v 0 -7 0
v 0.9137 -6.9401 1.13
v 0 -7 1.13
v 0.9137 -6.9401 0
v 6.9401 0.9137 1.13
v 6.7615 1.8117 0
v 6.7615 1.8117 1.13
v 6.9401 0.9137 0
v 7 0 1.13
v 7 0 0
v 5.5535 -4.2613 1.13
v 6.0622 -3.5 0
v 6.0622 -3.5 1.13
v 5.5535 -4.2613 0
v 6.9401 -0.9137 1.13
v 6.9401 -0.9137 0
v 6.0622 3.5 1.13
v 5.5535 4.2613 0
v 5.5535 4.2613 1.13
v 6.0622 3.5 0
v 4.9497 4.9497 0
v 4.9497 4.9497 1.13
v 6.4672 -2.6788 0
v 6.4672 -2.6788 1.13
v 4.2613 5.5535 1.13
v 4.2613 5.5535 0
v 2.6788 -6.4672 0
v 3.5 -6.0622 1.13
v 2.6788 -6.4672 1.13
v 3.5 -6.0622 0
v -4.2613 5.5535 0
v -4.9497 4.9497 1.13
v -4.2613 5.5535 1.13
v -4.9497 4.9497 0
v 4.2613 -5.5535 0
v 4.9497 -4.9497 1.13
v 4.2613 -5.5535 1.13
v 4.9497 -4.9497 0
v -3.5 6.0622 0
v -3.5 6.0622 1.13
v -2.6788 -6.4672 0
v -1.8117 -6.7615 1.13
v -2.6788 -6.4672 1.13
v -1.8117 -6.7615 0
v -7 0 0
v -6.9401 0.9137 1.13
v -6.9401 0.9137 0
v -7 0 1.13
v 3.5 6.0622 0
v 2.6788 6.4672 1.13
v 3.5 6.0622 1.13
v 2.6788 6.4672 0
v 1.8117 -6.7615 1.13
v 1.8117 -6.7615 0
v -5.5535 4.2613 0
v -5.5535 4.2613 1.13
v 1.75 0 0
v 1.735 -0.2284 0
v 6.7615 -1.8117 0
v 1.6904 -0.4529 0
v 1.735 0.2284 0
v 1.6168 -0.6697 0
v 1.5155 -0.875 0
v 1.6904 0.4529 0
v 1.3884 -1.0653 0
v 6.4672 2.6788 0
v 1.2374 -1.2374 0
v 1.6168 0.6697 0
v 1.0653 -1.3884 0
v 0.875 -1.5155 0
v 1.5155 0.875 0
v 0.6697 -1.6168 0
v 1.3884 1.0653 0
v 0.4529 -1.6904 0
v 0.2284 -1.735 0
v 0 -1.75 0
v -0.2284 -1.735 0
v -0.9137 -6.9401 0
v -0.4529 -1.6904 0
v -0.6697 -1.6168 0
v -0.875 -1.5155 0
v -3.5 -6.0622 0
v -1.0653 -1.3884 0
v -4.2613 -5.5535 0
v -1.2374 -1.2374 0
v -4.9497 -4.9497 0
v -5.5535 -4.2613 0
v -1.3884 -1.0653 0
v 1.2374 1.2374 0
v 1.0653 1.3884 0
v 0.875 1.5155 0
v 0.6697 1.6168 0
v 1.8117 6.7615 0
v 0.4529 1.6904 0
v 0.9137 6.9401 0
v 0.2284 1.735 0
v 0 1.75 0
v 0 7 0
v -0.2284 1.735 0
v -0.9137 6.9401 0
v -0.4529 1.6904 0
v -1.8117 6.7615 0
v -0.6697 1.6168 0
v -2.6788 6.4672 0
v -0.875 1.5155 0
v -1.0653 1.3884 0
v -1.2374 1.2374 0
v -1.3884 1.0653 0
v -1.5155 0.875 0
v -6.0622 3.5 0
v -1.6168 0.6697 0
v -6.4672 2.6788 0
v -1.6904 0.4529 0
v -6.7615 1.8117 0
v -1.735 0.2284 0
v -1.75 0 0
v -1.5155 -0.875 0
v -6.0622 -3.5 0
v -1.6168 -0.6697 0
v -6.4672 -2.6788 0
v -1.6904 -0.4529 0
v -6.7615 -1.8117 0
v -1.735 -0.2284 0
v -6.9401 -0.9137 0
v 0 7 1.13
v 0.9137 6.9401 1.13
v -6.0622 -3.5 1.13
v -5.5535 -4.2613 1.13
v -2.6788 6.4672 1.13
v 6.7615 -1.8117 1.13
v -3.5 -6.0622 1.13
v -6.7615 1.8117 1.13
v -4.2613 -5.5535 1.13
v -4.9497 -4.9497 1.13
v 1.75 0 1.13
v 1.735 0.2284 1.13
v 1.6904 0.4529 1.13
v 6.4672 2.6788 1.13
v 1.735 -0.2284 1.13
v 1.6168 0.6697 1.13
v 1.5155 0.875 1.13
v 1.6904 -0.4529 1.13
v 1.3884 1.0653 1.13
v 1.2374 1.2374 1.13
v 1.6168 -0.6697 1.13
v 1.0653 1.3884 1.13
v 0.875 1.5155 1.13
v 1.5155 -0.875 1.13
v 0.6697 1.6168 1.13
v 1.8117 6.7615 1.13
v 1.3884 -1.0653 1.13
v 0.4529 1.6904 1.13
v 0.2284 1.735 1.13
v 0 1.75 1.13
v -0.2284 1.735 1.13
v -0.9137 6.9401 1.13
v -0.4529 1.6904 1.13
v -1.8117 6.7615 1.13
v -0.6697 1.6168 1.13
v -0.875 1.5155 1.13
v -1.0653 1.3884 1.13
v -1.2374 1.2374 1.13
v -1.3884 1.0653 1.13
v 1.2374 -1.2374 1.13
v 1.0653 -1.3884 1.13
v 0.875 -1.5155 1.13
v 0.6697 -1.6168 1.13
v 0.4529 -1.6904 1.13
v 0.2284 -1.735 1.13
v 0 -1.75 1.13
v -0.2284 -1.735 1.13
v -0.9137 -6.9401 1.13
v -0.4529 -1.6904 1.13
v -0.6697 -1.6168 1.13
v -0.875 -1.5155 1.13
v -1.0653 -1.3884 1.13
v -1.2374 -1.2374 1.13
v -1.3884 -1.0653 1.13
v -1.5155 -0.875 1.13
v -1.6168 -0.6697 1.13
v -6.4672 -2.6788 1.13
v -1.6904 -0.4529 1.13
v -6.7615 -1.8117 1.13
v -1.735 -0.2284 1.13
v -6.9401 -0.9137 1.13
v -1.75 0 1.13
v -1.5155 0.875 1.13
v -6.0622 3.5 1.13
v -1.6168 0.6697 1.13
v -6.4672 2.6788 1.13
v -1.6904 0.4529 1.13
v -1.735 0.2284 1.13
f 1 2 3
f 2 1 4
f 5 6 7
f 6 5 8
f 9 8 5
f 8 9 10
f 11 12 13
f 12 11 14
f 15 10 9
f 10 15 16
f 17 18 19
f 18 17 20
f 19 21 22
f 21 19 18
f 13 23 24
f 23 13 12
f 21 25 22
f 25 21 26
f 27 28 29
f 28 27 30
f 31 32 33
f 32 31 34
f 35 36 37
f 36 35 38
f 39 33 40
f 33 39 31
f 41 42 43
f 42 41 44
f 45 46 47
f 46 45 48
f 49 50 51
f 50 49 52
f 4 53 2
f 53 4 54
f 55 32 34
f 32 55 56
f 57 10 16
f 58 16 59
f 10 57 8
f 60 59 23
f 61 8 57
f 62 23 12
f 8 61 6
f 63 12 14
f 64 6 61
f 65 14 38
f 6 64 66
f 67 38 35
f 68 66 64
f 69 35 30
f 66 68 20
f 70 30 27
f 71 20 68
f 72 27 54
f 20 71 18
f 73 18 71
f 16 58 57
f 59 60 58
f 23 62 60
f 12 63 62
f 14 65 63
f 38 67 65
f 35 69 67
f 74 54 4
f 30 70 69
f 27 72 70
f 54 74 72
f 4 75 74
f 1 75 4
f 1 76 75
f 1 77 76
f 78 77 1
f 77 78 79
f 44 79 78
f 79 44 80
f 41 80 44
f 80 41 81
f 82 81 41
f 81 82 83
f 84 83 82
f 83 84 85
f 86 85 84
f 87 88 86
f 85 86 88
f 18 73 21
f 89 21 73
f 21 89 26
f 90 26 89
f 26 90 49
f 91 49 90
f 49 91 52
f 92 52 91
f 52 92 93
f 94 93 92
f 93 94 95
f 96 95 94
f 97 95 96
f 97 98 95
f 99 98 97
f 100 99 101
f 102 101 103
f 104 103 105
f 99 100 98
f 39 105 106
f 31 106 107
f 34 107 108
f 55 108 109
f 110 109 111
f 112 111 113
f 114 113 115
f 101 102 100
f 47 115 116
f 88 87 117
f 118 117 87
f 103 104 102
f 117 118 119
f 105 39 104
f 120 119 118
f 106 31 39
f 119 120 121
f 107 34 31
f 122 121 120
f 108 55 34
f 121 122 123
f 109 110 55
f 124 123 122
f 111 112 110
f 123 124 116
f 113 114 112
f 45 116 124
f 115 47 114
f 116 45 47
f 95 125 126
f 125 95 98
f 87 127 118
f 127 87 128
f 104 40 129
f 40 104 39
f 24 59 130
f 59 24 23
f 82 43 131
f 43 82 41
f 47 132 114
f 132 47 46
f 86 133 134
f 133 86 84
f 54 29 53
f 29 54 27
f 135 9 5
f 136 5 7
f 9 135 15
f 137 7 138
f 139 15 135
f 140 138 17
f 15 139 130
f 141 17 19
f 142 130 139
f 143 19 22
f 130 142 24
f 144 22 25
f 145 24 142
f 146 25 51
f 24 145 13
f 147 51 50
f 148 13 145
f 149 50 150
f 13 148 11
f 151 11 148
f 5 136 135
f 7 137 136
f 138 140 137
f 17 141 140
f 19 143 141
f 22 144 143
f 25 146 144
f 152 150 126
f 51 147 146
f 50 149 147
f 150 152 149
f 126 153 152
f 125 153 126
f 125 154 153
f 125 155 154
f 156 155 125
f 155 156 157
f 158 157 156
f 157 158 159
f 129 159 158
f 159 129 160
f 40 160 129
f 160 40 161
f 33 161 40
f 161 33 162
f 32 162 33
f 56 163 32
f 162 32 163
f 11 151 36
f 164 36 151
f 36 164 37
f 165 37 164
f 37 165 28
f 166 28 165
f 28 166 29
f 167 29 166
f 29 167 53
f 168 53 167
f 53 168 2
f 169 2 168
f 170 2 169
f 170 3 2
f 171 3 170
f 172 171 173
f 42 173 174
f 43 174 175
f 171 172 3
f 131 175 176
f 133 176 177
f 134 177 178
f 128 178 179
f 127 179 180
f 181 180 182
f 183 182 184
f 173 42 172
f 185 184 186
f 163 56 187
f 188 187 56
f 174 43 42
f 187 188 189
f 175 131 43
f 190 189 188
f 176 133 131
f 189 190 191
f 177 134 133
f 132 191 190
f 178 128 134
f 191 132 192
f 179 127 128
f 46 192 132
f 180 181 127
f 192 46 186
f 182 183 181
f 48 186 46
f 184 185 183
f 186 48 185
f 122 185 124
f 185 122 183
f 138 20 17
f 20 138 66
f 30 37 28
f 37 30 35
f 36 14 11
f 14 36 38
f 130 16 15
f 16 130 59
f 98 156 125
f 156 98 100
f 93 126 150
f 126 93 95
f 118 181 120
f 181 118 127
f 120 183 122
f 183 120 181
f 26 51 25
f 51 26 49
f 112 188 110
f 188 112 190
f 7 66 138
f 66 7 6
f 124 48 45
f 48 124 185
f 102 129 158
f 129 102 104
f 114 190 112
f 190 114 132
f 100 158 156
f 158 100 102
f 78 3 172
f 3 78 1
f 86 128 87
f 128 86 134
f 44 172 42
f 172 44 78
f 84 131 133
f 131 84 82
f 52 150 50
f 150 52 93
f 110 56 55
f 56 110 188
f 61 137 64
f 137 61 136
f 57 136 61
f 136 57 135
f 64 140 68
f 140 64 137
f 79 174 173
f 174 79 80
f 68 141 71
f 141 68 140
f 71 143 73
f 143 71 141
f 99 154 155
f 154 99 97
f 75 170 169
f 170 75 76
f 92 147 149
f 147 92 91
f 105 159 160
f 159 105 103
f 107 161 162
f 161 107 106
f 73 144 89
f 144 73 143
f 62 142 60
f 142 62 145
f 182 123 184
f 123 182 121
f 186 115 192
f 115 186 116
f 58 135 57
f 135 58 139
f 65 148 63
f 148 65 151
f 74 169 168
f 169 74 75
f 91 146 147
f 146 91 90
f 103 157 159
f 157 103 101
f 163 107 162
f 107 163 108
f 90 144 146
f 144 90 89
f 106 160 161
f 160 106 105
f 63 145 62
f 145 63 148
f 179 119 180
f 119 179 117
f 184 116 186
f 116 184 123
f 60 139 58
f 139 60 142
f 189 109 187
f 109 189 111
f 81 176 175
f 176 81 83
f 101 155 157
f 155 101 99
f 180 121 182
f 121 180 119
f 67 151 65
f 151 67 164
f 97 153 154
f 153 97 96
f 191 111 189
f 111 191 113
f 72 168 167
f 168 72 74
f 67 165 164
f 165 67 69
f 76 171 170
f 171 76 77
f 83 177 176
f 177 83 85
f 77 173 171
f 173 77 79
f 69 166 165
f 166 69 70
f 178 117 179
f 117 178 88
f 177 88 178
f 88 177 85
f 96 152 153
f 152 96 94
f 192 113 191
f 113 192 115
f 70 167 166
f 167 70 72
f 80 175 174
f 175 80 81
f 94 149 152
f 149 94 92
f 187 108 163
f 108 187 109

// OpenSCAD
// file: parameters.scad
// =============================================================================
// Gen-AP Vernier flux-claw mega - WOUND-AWARE (HARD GATE)
// Dual-rotor vernier: Rotor B +22.5 deg vs 12-slot stator; O5 flux claws
// =============================================================================

wire_awg            = 26;
wire_od             = 0.45;
turns               = 195;      // +10 vs Gen-AM 185
fill                = 0.70;
layers_per_face     = 2;
wind_build_axial    = layers_per_face * wire_od * fill;   // 0.63 mm
wind_build_radial   = 3 * wire_od * fill;                 // 0.945 mm

coil_id_r           = 16.0;
coil_od_r           = 63.0;
span_deg            = 25.0;
former_web          = 1.30;     // thinner vs AM 1.40
flange_t            = 0.60;
wall                = 1.2;
slot_w              = 2.4;
mount_hole          = 3.5;
tab_len             = 7.0;

former_bare_h       = former_web + 2 * flange_t;            // 2.50 mm
coil_envelope_h     = former_bare_h + 2 * wind_build_axial; // 3.76 mm

run_clear           = 0.50;
gap_spacer_h        = run_clear + wind_build_axial;         // 1.13 mm
m2m                 = coil_envelope_h + 2 * run_clear;      // 4.76 mm

coil_stations       = 12;
bay_r_in            = coil_id_r - 2.0 - wind_build_radial;
bay_r_out           = coil_od_r + 2.0 + wind_build_radial;
bay_span            = span_deg + 4.0;
bay_offset          = 2.0;
stator_thick        = former_bare_h;
stator_od           = 160.0;
shaft_clear_stator  = 34.0;
coil_mount_r        = 26.0;

large_pocket_d      = 20.3;
small_pocket_d      = 5.3;
pocket_h            = 5.2;
large_n             = 8;
R_large             = 39.5;     // closer to copper centroid vs AM R=40.5
R_small_inner       = 25.5;
R_small_mid         = 39.5;
R_small_outer       = 55.5;
carrier_od          = 156.0;
carrier_thick       = 7.5;
hub_h               = 10.0;
hub_od              = 30.0;
rotor_b_offset_deg  = 22.5;     // vernier offset vs 12-slot stator

shaft_bore          = 8.35;
bearing_d           = 21.85;
bearing_h           = 7.2;
m3_clear            = 3.5;
bolt_r_inner        = 36.0;
bolt_n_inner        = 6;
flange_bolt_r       = 72.0;
flange_bolt_n       = 6;
brace_r             = 68.0;
brace_d             = 4.3;
brace_n             = 4;

spacer_pad_od       = 14.0;
spacer_pad_id       = m3_clear;
endbell_od          = 160.0;
endbell_thick       = 8.0;
endbell_shaft_clear = 10.0;

$fn = 64;
// main file
// Gen-AP gap spacer — h = run_clear + wind_build_axial
include <parameters.scad>;
$fn = 48;
difference() {
    cylinder(d=spacer_pad_od, h=gap_spacer_h);
    translate([0, 0, -0.1]) cylinder(d=spacer_pad_id, h=gap_spacer_h + 0.2);
}
